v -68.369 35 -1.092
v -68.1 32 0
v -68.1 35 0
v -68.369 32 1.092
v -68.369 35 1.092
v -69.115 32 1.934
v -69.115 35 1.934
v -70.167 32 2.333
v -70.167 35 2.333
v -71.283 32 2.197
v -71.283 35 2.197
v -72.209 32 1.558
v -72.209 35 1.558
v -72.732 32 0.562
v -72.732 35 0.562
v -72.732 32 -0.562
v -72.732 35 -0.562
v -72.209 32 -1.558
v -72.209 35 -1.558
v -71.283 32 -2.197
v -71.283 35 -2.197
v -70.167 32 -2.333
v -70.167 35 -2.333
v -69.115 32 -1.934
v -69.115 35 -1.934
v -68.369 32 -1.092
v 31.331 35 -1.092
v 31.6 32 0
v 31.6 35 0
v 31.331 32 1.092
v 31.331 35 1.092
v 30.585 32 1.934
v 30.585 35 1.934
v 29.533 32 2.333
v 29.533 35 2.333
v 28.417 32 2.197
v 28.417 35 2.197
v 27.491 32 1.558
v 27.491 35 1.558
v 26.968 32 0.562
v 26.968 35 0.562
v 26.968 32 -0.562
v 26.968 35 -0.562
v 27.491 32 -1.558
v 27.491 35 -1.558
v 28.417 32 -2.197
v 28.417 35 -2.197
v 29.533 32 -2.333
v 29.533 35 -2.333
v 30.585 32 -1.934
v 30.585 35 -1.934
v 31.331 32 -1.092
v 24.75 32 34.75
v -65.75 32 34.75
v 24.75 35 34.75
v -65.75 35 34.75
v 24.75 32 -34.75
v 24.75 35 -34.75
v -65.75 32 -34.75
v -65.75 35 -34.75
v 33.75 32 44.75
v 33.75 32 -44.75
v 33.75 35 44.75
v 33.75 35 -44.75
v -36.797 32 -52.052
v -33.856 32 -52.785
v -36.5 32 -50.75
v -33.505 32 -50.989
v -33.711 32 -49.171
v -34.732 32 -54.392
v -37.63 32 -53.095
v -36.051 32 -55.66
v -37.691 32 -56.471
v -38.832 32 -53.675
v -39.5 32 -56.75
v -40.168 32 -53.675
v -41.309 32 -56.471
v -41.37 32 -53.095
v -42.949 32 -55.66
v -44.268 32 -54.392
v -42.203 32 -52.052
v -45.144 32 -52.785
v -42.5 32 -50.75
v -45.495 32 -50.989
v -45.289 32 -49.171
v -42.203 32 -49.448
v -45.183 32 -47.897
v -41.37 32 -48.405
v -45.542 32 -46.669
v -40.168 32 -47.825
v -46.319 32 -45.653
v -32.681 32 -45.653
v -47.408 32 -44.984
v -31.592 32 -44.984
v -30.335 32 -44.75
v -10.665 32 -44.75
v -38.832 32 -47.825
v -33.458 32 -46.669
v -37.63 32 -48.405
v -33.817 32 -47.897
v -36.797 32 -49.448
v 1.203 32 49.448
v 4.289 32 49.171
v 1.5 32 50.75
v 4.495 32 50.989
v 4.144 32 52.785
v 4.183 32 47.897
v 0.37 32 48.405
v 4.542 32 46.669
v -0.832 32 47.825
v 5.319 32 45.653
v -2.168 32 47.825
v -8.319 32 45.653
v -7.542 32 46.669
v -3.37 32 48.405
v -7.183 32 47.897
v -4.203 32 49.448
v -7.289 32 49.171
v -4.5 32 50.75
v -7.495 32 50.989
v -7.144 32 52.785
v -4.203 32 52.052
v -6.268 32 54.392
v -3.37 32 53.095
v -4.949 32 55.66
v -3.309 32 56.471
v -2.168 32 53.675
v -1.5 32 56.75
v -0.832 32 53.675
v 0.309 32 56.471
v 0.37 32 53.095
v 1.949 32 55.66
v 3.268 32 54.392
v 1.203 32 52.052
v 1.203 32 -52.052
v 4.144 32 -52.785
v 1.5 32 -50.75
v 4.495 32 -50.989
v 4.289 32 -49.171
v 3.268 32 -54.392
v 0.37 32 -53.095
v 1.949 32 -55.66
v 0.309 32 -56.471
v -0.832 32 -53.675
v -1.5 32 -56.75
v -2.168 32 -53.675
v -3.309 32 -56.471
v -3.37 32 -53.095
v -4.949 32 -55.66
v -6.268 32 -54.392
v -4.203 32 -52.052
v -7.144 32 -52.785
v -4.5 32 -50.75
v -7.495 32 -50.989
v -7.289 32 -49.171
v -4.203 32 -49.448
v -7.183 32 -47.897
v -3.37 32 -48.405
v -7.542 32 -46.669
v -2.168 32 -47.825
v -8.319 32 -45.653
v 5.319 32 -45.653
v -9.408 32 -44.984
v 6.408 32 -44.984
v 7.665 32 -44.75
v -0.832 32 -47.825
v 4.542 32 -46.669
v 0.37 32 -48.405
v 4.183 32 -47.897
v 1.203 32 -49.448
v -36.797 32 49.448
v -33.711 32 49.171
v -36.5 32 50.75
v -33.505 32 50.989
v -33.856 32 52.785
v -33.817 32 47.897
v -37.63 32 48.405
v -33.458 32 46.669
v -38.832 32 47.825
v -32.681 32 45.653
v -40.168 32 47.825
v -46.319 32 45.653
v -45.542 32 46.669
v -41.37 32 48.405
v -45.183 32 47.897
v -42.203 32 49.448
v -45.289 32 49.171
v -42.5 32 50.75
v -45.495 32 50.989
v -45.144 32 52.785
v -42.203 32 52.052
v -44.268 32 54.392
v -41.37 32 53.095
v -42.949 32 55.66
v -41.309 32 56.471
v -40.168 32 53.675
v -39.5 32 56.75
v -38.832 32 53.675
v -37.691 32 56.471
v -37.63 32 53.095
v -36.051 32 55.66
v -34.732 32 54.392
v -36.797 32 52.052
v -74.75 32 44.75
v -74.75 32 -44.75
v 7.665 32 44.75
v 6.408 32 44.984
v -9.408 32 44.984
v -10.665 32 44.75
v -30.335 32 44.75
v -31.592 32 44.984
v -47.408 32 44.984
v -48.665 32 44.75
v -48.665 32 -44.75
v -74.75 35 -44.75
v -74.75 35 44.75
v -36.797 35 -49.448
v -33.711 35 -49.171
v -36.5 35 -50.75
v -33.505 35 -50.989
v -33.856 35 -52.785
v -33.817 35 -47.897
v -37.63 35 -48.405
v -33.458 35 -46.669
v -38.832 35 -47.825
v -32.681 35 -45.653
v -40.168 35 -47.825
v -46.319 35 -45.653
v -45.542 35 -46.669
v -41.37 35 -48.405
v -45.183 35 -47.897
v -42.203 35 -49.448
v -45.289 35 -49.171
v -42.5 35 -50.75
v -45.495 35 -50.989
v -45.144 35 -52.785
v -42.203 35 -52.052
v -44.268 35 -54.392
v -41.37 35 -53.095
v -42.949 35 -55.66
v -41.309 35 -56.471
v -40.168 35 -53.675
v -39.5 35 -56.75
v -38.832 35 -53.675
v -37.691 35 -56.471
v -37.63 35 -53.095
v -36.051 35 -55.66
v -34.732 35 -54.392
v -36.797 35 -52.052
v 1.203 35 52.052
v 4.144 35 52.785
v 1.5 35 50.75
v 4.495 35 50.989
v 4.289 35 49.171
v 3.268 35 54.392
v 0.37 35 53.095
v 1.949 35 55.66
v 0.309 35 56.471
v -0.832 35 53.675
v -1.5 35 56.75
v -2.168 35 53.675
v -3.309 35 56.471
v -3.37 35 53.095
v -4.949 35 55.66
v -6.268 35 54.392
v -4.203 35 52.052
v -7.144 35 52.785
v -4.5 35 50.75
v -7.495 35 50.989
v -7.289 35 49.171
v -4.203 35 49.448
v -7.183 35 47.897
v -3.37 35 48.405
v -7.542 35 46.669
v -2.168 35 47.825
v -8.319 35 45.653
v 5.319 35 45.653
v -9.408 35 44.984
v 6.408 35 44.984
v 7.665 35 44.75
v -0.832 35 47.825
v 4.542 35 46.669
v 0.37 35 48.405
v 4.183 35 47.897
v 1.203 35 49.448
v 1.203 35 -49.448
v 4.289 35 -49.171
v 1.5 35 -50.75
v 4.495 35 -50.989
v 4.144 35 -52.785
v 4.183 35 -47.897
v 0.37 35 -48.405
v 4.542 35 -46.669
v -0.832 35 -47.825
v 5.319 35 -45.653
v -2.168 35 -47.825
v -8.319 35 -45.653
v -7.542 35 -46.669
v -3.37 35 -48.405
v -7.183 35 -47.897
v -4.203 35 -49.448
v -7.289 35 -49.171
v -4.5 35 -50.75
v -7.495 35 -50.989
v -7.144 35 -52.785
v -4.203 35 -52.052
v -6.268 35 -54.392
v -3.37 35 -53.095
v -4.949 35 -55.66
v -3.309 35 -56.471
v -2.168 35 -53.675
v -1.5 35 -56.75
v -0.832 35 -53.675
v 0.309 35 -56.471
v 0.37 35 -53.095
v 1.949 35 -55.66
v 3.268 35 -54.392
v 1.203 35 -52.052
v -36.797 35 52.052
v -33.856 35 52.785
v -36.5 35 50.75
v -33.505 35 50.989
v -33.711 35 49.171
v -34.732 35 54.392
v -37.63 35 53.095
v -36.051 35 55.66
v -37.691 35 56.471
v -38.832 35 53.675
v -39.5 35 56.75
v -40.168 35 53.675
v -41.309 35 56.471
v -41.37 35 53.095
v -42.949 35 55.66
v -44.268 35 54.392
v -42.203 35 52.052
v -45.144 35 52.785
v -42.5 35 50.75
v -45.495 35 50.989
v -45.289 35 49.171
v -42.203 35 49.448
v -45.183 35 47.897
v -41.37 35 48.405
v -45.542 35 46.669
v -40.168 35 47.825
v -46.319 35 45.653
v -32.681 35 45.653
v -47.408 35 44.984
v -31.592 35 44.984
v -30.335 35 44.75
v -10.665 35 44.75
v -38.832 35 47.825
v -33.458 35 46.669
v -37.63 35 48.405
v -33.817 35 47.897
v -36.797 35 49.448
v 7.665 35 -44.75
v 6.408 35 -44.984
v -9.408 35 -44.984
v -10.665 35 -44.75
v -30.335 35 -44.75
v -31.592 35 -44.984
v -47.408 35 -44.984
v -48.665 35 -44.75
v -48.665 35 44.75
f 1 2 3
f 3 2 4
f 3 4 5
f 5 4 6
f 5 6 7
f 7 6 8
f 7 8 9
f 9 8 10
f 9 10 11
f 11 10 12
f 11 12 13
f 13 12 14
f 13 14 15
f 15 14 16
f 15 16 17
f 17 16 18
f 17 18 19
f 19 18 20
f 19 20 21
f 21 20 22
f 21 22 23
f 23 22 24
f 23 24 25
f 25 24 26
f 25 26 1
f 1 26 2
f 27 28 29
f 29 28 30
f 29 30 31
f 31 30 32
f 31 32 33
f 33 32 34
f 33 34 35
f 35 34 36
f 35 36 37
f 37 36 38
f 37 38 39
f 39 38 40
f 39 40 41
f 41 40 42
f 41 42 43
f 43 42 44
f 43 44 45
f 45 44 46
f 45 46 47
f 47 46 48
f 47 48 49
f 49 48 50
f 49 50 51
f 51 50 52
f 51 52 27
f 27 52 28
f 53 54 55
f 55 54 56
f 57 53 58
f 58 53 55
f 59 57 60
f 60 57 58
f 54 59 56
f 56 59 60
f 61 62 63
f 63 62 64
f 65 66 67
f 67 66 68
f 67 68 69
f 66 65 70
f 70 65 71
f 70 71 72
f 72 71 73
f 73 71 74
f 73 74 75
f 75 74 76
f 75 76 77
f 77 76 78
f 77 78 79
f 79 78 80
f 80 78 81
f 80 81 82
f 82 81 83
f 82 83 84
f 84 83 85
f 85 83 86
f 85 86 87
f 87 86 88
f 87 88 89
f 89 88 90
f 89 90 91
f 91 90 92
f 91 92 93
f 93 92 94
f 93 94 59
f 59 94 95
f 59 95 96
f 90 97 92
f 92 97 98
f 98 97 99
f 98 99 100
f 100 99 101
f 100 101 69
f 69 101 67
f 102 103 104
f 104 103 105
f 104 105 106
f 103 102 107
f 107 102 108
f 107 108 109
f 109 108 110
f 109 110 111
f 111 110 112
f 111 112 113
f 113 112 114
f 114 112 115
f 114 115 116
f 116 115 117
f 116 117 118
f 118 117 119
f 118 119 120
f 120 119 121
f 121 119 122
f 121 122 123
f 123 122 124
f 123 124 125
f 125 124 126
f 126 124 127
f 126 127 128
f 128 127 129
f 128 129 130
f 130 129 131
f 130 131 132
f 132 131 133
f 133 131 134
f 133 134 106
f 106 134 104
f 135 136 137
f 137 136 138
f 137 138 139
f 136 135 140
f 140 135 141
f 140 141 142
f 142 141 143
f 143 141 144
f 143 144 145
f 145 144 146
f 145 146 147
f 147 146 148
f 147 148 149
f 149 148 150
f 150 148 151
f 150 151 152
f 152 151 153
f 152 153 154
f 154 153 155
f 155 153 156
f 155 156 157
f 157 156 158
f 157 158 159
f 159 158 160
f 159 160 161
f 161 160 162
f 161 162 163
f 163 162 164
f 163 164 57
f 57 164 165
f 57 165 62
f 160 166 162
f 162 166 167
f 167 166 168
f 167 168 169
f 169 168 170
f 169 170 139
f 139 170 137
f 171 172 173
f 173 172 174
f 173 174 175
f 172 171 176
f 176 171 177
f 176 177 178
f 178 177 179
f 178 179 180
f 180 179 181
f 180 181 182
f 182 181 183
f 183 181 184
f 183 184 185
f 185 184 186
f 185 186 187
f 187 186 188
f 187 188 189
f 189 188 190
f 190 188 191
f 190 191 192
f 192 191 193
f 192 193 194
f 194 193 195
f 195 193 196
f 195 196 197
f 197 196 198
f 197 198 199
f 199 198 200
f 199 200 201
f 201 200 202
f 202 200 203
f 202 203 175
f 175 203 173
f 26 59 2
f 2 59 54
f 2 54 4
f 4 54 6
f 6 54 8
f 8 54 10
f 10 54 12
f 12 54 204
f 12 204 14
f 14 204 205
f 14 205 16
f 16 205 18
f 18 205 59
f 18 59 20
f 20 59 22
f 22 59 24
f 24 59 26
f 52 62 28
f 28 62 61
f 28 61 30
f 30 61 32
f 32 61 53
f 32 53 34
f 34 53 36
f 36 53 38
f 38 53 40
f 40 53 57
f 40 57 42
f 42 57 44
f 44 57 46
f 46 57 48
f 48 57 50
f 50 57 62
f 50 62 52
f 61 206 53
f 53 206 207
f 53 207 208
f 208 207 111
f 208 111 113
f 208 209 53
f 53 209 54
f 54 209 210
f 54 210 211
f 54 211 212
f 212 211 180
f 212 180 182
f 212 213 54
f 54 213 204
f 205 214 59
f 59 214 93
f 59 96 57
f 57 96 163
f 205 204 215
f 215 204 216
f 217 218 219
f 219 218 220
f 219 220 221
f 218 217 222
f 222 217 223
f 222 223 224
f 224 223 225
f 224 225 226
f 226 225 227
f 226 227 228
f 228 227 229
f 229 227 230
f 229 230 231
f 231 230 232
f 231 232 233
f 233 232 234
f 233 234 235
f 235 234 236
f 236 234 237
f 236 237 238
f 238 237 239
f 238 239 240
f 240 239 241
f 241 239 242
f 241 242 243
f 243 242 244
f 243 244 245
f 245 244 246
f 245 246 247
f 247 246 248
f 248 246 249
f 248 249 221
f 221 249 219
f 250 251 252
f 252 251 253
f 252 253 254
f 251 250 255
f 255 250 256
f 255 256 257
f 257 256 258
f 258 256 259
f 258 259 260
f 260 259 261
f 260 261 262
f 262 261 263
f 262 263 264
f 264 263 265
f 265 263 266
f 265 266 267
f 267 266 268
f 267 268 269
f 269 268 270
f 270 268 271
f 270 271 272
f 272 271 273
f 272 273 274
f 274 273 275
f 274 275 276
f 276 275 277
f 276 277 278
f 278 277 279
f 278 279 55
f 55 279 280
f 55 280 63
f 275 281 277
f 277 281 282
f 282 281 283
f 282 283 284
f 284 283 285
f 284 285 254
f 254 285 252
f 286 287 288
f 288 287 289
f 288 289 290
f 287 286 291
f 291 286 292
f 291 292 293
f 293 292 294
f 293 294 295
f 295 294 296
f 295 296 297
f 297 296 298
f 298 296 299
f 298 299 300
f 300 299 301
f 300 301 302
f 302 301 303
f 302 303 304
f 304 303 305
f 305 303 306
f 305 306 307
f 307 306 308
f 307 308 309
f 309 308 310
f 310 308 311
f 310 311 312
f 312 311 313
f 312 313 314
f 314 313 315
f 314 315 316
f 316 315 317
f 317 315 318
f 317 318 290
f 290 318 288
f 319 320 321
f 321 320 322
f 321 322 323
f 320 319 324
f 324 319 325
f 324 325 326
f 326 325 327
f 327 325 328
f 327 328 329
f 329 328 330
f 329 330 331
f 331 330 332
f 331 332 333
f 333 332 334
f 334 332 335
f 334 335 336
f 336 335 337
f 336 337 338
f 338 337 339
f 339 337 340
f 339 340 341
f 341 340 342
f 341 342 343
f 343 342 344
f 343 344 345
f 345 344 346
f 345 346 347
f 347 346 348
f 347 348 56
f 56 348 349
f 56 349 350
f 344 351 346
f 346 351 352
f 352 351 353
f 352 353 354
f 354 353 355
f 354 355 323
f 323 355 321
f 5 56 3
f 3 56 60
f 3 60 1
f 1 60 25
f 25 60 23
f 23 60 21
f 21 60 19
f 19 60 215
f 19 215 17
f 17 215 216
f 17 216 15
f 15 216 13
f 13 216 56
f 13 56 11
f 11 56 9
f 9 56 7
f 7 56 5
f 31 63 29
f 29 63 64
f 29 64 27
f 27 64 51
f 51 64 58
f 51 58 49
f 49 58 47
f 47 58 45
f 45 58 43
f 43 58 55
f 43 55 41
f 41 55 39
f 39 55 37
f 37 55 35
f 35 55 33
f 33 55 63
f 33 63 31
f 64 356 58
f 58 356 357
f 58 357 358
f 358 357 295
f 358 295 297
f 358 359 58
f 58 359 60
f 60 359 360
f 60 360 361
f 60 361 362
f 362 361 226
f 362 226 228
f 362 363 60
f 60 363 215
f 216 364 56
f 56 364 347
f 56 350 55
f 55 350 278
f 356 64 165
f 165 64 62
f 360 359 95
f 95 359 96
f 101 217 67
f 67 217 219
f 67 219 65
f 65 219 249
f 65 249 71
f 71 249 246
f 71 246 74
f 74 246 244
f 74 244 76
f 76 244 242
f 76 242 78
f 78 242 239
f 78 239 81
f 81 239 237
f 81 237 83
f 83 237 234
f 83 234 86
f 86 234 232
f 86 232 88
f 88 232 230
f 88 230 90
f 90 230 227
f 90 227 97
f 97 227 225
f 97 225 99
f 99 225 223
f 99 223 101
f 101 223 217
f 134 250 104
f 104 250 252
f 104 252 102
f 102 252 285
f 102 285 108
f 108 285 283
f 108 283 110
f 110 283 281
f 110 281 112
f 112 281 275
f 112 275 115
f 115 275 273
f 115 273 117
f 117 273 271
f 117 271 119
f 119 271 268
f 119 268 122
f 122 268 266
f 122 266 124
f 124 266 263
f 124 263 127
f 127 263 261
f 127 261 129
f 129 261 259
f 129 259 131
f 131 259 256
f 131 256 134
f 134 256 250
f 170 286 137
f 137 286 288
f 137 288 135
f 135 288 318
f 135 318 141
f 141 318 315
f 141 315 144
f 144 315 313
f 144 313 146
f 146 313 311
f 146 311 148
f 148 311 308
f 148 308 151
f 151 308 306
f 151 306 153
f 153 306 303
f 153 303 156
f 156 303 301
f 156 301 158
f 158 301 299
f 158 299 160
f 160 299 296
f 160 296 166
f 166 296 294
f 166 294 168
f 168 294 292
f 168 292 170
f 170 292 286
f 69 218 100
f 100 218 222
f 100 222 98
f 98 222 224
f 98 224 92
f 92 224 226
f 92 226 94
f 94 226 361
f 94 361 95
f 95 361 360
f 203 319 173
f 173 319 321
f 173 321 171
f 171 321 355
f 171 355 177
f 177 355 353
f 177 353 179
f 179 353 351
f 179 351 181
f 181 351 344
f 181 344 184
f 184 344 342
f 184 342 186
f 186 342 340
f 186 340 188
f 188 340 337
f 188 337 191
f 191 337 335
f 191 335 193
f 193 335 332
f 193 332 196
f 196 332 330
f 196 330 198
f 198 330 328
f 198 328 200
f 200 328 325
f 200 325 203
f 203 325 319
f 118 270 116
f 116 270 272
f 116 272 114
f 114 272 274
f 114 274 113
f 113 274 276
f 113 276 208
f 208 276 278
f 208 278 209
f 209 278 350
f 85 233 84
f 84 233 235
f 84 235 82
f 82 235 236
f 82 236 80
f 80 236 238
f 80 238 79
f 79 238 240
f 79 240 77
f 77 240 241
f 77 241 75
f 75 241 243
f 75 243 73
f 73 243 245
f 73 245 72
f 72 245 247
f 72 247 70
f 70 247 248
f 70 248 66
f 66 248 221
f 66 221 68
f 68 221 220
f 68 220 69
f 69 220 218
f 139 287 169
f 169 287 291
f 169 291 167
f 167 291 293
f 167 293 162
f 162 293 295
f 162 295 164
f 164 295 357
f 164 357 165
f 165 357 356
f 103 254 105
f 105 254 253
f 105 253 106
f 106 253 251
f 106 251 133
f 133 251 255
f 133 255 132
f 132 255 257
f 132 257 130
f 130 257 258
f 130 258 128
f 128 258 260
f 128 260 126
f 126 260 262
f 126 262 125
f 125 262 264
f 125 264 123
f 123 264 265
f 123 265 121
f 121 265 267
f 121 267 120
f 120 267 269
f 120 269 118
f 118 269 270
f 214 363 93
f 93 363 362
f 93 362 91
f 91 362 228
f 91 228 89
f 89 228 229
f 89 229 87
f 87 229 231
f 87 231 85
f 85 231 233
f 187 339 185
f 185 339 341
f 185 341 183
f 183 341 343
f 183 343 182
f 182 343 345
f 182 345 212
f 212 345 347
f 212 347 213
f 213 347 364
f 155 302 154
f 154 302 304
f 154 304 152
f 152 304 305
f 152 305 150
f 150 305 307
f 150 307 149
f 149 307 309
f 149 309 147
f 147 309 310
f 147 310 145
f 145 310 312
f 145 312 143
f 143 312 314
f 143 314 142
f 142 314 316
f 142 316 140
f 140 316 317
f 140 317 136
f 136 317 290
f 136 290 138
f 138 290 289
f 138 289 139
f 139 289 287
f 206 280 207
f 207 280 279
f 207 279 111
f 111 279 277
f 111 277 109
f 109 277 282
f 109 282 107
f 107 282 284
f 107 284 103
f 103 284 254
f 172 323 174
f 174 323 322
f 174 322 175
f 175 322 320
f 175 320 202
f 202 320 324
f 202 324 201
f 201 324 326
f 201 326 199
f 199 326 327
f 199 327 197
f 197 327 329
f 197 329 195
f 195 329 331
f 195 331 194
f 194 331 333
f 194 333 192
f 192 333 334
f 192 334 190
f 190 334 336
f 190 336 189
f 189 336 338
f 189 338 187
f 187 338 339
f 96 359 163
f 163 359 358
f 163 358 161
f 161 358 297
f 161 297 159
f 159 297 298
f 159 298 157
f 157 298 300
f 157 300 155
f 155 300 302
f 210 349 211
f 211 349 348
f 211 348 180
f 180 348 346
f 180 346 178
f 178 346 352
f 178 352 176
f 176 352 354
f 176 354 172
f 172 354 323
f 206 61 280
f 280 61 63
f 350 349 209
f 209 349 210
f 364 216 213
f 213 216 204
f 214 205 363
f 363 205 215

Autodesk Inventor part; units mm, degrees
ref_plane "YZ Plane" through (0, 0, 0) normal (1, 0, 0) x (0, 1, 0)
ref_plane "XY Plane" through (0, 0, 0) normal (0, 0, 1) x (1, 0, 0)
ref_plane "Work Plane4" through (0, 32, 0) normal (0, 1, 0) x (-1, 0, 0)
sketch "Sketch1" plane through (0, 0, 0) normal (0, 1, 0) x (-1, 0, 0)
  line L0 (33.75, 44.75) -> (-33.75, 44.75)
  line L1 (-33.75, 44.75) -> (-33.75, -44.75)
  line L2 (-33.75, -44.75) -> (33.75, -44.75)
  line L3 (33.75, -44.75) -> (33.75, 44.75)
  line L4 (21.75, -36.75) -> (-21.75, -36.75)
  line L5 (21.75, 36.75) -> (-21.75, 36.75)
  line L6 (21.75, 36.75) -> (21.75, -36.75)
  line L7 (-21.75, 36.75) -> (-21.75, -36.75)
  line L8 (33.75, -41.75) -> (-33.75, -41.75)
  line L9 (33.75, 41.75) -> (-33.75, 41.75)
  line L10 (-6.7955, 36.75) -> (21.75, 0)
  line L11 (21.75, 0) -> (0, -36.75)
  point P0 (0, 0)
  point P1 (-33.75, 0)
  dimension "d0" = 83.5
  dimension "d1" = 3
  dimension "d2" = 3
  dimension "d4" = 5
  dimension "d5" = 5
  dimension "d6" = 12
  dimension "d7" = 12
  dimension "d8" = 67.5
  dimension "d9" = 33.75
  dimension "d10" = 41.75
sketch "Sketch2" plane through (0, 32, 0) normal (0, 1, 0) x (1, 0, 0)
  line L0 (-65.75, 34.75) -> (24.75, 34.75)
  line L1 (-65.75, -34.75) -> (24.75, -34.75)
  line L2 (24.75, -34.75) -> (24.75, 34.75)
  line L3 (-65.75, -34.75) -> (-65.75, 34.75)
  line L4 (-74.75, -44.75) -> (-74.75, 44.75)
  line L5 (33.75, -44.75) -> (33.75, 44.75) projected
  line L6 (33.75, 44.75) -> (-33.75, 44.75) projected
  line L7 (-74.75, -44.75) -> (33.75, -44.75)
  line L8 (-74.75, 44.75) -> (33.75, 44.75)
  dimension "d94" = 69.5
  dimension "d96" = 90.5
  dimension "d97" = 9
  dimension "d98" = 9
  dimension "d99" = 10
  dimension "d100" = 10
extrude "Extrusion3" add sketch "Sketch2" along normal blind 3
sketch "Sketch3" plane through (0, 32, 0) normal (0, 1, 0) x (1, 0, 0)
  circle A0 centre (29.25, 0) radius 4.5
  circle A1 centre (-70.45, 0) radius 4.5
  circle A2 centre (-70.45, 0) radius 2.35
  circle A3 centre (29.25, 0) radius 2.35
  line L0 (33.75, -44.75) -> (33.75, 44.75)
  point P0 (0, 0)
  dimension "d24" = 9
  dimension "d27" = 4.7
  dimension "d43" = 99.7
  dimension "d44" = 4.5
extrude "Extrusion5" cut sketch "Sketch3" along normal blind 3 contours A2 | A3
sketch "Sketch9" plane through (0, 35, 0) normal (0, 1, 0) x (1, 0, 0)
  circle A0 centre (-39.5, -50.75) radius 3
  circle A1 centre (-39.5, -50.75) radius 6
  line L0 (-74.75, -44.75) -> (33.75, -44.75) projected
  circle A2 centre (-1.5, -50.75) radius 3
  circle A3 centre (-1.5, -50.75) radius 6
  arc A4 (7.6652, -44.75) -> (4.2885, -49.1711) centre (7.6652, -48.25) ccw
  arc A5 (-7.2885, -49.1711) -> (-10.6652, -44.75) centre (-10.6652, -48.25) ccw
  arc A6 (-30.3348, -44.75) -> (-33.7115, -49.1711) centre (-30.3348, -48.25) ccw
  arc A7 (-45.2885, -49.1711) -> (-48.6652, -44.75) centre (-48.6652, -48.25) ccw
  line L1 (33.75, -44.75) -> (33.75, 44.75) projected
  line L2 (-74.75, 44.75) -> (-74.75, -44.75) projected
  line L3 (64.0405, 0) -> (-151.031, 0) construction
  circle A8 centre (-39.5, 50.75) radius 3
  circle A9 centre (-39.5, 50.75) radius 6
  circle A10 centre (-1.5, 50.75) radius 3
  circle A11 centre (-1.5, 50.75) radius 6
  arc A12 (4.2885, 49.1711) -> (7.6652, 44.75) centre (7.6652, 48.25) ccw
  arc A13 (-10.6652, 44.75) -> (-7.2885, 49.1711) centre (-10.6652, 48.25) ccw
  arc A14 (-33.7115, 49.1711) -> (-30.3348, 44.75) centre (-30.3348, 48.25) ccw
  arc A15 (-48.6652, 44.75) -> (-45.2885, 49.1711) centre (-48.6652, 48.25) ccw
  line L4 (33.75, 44.75) -> (-74.75, 44.75) projected
  point P0 (0, 0)
  dimension "d101" = 6
  dimension "d102" = 12
  dimension "d103" = 38
  dimension "d104" = 7
  dimension "d105" = 108.5
  dimension "d106" = 35.25
extrude "Extrusion10" add sketch "Sketch9" against normal blind 3 contours A1 | A1 L0 A6 | A7 L0 A1 | L0 A3 A5 | L0 A4 A3 | A3 | A15 A9 L4 | A9 | A9 A14 L4 | L4 A11 A12 | A13 A11 L4 | A11
equation "\"d9\" = 0.5 * d8"
equation "\"d10\" = 0.5 * d0"
equation "\"d44\" = 0.5 * d24"
equation "\"d2\" = d1"
equation "\"d5\" = d4"
equation "\"d7\" = d6"
properties part number "CO-1-02-fuseMount"
